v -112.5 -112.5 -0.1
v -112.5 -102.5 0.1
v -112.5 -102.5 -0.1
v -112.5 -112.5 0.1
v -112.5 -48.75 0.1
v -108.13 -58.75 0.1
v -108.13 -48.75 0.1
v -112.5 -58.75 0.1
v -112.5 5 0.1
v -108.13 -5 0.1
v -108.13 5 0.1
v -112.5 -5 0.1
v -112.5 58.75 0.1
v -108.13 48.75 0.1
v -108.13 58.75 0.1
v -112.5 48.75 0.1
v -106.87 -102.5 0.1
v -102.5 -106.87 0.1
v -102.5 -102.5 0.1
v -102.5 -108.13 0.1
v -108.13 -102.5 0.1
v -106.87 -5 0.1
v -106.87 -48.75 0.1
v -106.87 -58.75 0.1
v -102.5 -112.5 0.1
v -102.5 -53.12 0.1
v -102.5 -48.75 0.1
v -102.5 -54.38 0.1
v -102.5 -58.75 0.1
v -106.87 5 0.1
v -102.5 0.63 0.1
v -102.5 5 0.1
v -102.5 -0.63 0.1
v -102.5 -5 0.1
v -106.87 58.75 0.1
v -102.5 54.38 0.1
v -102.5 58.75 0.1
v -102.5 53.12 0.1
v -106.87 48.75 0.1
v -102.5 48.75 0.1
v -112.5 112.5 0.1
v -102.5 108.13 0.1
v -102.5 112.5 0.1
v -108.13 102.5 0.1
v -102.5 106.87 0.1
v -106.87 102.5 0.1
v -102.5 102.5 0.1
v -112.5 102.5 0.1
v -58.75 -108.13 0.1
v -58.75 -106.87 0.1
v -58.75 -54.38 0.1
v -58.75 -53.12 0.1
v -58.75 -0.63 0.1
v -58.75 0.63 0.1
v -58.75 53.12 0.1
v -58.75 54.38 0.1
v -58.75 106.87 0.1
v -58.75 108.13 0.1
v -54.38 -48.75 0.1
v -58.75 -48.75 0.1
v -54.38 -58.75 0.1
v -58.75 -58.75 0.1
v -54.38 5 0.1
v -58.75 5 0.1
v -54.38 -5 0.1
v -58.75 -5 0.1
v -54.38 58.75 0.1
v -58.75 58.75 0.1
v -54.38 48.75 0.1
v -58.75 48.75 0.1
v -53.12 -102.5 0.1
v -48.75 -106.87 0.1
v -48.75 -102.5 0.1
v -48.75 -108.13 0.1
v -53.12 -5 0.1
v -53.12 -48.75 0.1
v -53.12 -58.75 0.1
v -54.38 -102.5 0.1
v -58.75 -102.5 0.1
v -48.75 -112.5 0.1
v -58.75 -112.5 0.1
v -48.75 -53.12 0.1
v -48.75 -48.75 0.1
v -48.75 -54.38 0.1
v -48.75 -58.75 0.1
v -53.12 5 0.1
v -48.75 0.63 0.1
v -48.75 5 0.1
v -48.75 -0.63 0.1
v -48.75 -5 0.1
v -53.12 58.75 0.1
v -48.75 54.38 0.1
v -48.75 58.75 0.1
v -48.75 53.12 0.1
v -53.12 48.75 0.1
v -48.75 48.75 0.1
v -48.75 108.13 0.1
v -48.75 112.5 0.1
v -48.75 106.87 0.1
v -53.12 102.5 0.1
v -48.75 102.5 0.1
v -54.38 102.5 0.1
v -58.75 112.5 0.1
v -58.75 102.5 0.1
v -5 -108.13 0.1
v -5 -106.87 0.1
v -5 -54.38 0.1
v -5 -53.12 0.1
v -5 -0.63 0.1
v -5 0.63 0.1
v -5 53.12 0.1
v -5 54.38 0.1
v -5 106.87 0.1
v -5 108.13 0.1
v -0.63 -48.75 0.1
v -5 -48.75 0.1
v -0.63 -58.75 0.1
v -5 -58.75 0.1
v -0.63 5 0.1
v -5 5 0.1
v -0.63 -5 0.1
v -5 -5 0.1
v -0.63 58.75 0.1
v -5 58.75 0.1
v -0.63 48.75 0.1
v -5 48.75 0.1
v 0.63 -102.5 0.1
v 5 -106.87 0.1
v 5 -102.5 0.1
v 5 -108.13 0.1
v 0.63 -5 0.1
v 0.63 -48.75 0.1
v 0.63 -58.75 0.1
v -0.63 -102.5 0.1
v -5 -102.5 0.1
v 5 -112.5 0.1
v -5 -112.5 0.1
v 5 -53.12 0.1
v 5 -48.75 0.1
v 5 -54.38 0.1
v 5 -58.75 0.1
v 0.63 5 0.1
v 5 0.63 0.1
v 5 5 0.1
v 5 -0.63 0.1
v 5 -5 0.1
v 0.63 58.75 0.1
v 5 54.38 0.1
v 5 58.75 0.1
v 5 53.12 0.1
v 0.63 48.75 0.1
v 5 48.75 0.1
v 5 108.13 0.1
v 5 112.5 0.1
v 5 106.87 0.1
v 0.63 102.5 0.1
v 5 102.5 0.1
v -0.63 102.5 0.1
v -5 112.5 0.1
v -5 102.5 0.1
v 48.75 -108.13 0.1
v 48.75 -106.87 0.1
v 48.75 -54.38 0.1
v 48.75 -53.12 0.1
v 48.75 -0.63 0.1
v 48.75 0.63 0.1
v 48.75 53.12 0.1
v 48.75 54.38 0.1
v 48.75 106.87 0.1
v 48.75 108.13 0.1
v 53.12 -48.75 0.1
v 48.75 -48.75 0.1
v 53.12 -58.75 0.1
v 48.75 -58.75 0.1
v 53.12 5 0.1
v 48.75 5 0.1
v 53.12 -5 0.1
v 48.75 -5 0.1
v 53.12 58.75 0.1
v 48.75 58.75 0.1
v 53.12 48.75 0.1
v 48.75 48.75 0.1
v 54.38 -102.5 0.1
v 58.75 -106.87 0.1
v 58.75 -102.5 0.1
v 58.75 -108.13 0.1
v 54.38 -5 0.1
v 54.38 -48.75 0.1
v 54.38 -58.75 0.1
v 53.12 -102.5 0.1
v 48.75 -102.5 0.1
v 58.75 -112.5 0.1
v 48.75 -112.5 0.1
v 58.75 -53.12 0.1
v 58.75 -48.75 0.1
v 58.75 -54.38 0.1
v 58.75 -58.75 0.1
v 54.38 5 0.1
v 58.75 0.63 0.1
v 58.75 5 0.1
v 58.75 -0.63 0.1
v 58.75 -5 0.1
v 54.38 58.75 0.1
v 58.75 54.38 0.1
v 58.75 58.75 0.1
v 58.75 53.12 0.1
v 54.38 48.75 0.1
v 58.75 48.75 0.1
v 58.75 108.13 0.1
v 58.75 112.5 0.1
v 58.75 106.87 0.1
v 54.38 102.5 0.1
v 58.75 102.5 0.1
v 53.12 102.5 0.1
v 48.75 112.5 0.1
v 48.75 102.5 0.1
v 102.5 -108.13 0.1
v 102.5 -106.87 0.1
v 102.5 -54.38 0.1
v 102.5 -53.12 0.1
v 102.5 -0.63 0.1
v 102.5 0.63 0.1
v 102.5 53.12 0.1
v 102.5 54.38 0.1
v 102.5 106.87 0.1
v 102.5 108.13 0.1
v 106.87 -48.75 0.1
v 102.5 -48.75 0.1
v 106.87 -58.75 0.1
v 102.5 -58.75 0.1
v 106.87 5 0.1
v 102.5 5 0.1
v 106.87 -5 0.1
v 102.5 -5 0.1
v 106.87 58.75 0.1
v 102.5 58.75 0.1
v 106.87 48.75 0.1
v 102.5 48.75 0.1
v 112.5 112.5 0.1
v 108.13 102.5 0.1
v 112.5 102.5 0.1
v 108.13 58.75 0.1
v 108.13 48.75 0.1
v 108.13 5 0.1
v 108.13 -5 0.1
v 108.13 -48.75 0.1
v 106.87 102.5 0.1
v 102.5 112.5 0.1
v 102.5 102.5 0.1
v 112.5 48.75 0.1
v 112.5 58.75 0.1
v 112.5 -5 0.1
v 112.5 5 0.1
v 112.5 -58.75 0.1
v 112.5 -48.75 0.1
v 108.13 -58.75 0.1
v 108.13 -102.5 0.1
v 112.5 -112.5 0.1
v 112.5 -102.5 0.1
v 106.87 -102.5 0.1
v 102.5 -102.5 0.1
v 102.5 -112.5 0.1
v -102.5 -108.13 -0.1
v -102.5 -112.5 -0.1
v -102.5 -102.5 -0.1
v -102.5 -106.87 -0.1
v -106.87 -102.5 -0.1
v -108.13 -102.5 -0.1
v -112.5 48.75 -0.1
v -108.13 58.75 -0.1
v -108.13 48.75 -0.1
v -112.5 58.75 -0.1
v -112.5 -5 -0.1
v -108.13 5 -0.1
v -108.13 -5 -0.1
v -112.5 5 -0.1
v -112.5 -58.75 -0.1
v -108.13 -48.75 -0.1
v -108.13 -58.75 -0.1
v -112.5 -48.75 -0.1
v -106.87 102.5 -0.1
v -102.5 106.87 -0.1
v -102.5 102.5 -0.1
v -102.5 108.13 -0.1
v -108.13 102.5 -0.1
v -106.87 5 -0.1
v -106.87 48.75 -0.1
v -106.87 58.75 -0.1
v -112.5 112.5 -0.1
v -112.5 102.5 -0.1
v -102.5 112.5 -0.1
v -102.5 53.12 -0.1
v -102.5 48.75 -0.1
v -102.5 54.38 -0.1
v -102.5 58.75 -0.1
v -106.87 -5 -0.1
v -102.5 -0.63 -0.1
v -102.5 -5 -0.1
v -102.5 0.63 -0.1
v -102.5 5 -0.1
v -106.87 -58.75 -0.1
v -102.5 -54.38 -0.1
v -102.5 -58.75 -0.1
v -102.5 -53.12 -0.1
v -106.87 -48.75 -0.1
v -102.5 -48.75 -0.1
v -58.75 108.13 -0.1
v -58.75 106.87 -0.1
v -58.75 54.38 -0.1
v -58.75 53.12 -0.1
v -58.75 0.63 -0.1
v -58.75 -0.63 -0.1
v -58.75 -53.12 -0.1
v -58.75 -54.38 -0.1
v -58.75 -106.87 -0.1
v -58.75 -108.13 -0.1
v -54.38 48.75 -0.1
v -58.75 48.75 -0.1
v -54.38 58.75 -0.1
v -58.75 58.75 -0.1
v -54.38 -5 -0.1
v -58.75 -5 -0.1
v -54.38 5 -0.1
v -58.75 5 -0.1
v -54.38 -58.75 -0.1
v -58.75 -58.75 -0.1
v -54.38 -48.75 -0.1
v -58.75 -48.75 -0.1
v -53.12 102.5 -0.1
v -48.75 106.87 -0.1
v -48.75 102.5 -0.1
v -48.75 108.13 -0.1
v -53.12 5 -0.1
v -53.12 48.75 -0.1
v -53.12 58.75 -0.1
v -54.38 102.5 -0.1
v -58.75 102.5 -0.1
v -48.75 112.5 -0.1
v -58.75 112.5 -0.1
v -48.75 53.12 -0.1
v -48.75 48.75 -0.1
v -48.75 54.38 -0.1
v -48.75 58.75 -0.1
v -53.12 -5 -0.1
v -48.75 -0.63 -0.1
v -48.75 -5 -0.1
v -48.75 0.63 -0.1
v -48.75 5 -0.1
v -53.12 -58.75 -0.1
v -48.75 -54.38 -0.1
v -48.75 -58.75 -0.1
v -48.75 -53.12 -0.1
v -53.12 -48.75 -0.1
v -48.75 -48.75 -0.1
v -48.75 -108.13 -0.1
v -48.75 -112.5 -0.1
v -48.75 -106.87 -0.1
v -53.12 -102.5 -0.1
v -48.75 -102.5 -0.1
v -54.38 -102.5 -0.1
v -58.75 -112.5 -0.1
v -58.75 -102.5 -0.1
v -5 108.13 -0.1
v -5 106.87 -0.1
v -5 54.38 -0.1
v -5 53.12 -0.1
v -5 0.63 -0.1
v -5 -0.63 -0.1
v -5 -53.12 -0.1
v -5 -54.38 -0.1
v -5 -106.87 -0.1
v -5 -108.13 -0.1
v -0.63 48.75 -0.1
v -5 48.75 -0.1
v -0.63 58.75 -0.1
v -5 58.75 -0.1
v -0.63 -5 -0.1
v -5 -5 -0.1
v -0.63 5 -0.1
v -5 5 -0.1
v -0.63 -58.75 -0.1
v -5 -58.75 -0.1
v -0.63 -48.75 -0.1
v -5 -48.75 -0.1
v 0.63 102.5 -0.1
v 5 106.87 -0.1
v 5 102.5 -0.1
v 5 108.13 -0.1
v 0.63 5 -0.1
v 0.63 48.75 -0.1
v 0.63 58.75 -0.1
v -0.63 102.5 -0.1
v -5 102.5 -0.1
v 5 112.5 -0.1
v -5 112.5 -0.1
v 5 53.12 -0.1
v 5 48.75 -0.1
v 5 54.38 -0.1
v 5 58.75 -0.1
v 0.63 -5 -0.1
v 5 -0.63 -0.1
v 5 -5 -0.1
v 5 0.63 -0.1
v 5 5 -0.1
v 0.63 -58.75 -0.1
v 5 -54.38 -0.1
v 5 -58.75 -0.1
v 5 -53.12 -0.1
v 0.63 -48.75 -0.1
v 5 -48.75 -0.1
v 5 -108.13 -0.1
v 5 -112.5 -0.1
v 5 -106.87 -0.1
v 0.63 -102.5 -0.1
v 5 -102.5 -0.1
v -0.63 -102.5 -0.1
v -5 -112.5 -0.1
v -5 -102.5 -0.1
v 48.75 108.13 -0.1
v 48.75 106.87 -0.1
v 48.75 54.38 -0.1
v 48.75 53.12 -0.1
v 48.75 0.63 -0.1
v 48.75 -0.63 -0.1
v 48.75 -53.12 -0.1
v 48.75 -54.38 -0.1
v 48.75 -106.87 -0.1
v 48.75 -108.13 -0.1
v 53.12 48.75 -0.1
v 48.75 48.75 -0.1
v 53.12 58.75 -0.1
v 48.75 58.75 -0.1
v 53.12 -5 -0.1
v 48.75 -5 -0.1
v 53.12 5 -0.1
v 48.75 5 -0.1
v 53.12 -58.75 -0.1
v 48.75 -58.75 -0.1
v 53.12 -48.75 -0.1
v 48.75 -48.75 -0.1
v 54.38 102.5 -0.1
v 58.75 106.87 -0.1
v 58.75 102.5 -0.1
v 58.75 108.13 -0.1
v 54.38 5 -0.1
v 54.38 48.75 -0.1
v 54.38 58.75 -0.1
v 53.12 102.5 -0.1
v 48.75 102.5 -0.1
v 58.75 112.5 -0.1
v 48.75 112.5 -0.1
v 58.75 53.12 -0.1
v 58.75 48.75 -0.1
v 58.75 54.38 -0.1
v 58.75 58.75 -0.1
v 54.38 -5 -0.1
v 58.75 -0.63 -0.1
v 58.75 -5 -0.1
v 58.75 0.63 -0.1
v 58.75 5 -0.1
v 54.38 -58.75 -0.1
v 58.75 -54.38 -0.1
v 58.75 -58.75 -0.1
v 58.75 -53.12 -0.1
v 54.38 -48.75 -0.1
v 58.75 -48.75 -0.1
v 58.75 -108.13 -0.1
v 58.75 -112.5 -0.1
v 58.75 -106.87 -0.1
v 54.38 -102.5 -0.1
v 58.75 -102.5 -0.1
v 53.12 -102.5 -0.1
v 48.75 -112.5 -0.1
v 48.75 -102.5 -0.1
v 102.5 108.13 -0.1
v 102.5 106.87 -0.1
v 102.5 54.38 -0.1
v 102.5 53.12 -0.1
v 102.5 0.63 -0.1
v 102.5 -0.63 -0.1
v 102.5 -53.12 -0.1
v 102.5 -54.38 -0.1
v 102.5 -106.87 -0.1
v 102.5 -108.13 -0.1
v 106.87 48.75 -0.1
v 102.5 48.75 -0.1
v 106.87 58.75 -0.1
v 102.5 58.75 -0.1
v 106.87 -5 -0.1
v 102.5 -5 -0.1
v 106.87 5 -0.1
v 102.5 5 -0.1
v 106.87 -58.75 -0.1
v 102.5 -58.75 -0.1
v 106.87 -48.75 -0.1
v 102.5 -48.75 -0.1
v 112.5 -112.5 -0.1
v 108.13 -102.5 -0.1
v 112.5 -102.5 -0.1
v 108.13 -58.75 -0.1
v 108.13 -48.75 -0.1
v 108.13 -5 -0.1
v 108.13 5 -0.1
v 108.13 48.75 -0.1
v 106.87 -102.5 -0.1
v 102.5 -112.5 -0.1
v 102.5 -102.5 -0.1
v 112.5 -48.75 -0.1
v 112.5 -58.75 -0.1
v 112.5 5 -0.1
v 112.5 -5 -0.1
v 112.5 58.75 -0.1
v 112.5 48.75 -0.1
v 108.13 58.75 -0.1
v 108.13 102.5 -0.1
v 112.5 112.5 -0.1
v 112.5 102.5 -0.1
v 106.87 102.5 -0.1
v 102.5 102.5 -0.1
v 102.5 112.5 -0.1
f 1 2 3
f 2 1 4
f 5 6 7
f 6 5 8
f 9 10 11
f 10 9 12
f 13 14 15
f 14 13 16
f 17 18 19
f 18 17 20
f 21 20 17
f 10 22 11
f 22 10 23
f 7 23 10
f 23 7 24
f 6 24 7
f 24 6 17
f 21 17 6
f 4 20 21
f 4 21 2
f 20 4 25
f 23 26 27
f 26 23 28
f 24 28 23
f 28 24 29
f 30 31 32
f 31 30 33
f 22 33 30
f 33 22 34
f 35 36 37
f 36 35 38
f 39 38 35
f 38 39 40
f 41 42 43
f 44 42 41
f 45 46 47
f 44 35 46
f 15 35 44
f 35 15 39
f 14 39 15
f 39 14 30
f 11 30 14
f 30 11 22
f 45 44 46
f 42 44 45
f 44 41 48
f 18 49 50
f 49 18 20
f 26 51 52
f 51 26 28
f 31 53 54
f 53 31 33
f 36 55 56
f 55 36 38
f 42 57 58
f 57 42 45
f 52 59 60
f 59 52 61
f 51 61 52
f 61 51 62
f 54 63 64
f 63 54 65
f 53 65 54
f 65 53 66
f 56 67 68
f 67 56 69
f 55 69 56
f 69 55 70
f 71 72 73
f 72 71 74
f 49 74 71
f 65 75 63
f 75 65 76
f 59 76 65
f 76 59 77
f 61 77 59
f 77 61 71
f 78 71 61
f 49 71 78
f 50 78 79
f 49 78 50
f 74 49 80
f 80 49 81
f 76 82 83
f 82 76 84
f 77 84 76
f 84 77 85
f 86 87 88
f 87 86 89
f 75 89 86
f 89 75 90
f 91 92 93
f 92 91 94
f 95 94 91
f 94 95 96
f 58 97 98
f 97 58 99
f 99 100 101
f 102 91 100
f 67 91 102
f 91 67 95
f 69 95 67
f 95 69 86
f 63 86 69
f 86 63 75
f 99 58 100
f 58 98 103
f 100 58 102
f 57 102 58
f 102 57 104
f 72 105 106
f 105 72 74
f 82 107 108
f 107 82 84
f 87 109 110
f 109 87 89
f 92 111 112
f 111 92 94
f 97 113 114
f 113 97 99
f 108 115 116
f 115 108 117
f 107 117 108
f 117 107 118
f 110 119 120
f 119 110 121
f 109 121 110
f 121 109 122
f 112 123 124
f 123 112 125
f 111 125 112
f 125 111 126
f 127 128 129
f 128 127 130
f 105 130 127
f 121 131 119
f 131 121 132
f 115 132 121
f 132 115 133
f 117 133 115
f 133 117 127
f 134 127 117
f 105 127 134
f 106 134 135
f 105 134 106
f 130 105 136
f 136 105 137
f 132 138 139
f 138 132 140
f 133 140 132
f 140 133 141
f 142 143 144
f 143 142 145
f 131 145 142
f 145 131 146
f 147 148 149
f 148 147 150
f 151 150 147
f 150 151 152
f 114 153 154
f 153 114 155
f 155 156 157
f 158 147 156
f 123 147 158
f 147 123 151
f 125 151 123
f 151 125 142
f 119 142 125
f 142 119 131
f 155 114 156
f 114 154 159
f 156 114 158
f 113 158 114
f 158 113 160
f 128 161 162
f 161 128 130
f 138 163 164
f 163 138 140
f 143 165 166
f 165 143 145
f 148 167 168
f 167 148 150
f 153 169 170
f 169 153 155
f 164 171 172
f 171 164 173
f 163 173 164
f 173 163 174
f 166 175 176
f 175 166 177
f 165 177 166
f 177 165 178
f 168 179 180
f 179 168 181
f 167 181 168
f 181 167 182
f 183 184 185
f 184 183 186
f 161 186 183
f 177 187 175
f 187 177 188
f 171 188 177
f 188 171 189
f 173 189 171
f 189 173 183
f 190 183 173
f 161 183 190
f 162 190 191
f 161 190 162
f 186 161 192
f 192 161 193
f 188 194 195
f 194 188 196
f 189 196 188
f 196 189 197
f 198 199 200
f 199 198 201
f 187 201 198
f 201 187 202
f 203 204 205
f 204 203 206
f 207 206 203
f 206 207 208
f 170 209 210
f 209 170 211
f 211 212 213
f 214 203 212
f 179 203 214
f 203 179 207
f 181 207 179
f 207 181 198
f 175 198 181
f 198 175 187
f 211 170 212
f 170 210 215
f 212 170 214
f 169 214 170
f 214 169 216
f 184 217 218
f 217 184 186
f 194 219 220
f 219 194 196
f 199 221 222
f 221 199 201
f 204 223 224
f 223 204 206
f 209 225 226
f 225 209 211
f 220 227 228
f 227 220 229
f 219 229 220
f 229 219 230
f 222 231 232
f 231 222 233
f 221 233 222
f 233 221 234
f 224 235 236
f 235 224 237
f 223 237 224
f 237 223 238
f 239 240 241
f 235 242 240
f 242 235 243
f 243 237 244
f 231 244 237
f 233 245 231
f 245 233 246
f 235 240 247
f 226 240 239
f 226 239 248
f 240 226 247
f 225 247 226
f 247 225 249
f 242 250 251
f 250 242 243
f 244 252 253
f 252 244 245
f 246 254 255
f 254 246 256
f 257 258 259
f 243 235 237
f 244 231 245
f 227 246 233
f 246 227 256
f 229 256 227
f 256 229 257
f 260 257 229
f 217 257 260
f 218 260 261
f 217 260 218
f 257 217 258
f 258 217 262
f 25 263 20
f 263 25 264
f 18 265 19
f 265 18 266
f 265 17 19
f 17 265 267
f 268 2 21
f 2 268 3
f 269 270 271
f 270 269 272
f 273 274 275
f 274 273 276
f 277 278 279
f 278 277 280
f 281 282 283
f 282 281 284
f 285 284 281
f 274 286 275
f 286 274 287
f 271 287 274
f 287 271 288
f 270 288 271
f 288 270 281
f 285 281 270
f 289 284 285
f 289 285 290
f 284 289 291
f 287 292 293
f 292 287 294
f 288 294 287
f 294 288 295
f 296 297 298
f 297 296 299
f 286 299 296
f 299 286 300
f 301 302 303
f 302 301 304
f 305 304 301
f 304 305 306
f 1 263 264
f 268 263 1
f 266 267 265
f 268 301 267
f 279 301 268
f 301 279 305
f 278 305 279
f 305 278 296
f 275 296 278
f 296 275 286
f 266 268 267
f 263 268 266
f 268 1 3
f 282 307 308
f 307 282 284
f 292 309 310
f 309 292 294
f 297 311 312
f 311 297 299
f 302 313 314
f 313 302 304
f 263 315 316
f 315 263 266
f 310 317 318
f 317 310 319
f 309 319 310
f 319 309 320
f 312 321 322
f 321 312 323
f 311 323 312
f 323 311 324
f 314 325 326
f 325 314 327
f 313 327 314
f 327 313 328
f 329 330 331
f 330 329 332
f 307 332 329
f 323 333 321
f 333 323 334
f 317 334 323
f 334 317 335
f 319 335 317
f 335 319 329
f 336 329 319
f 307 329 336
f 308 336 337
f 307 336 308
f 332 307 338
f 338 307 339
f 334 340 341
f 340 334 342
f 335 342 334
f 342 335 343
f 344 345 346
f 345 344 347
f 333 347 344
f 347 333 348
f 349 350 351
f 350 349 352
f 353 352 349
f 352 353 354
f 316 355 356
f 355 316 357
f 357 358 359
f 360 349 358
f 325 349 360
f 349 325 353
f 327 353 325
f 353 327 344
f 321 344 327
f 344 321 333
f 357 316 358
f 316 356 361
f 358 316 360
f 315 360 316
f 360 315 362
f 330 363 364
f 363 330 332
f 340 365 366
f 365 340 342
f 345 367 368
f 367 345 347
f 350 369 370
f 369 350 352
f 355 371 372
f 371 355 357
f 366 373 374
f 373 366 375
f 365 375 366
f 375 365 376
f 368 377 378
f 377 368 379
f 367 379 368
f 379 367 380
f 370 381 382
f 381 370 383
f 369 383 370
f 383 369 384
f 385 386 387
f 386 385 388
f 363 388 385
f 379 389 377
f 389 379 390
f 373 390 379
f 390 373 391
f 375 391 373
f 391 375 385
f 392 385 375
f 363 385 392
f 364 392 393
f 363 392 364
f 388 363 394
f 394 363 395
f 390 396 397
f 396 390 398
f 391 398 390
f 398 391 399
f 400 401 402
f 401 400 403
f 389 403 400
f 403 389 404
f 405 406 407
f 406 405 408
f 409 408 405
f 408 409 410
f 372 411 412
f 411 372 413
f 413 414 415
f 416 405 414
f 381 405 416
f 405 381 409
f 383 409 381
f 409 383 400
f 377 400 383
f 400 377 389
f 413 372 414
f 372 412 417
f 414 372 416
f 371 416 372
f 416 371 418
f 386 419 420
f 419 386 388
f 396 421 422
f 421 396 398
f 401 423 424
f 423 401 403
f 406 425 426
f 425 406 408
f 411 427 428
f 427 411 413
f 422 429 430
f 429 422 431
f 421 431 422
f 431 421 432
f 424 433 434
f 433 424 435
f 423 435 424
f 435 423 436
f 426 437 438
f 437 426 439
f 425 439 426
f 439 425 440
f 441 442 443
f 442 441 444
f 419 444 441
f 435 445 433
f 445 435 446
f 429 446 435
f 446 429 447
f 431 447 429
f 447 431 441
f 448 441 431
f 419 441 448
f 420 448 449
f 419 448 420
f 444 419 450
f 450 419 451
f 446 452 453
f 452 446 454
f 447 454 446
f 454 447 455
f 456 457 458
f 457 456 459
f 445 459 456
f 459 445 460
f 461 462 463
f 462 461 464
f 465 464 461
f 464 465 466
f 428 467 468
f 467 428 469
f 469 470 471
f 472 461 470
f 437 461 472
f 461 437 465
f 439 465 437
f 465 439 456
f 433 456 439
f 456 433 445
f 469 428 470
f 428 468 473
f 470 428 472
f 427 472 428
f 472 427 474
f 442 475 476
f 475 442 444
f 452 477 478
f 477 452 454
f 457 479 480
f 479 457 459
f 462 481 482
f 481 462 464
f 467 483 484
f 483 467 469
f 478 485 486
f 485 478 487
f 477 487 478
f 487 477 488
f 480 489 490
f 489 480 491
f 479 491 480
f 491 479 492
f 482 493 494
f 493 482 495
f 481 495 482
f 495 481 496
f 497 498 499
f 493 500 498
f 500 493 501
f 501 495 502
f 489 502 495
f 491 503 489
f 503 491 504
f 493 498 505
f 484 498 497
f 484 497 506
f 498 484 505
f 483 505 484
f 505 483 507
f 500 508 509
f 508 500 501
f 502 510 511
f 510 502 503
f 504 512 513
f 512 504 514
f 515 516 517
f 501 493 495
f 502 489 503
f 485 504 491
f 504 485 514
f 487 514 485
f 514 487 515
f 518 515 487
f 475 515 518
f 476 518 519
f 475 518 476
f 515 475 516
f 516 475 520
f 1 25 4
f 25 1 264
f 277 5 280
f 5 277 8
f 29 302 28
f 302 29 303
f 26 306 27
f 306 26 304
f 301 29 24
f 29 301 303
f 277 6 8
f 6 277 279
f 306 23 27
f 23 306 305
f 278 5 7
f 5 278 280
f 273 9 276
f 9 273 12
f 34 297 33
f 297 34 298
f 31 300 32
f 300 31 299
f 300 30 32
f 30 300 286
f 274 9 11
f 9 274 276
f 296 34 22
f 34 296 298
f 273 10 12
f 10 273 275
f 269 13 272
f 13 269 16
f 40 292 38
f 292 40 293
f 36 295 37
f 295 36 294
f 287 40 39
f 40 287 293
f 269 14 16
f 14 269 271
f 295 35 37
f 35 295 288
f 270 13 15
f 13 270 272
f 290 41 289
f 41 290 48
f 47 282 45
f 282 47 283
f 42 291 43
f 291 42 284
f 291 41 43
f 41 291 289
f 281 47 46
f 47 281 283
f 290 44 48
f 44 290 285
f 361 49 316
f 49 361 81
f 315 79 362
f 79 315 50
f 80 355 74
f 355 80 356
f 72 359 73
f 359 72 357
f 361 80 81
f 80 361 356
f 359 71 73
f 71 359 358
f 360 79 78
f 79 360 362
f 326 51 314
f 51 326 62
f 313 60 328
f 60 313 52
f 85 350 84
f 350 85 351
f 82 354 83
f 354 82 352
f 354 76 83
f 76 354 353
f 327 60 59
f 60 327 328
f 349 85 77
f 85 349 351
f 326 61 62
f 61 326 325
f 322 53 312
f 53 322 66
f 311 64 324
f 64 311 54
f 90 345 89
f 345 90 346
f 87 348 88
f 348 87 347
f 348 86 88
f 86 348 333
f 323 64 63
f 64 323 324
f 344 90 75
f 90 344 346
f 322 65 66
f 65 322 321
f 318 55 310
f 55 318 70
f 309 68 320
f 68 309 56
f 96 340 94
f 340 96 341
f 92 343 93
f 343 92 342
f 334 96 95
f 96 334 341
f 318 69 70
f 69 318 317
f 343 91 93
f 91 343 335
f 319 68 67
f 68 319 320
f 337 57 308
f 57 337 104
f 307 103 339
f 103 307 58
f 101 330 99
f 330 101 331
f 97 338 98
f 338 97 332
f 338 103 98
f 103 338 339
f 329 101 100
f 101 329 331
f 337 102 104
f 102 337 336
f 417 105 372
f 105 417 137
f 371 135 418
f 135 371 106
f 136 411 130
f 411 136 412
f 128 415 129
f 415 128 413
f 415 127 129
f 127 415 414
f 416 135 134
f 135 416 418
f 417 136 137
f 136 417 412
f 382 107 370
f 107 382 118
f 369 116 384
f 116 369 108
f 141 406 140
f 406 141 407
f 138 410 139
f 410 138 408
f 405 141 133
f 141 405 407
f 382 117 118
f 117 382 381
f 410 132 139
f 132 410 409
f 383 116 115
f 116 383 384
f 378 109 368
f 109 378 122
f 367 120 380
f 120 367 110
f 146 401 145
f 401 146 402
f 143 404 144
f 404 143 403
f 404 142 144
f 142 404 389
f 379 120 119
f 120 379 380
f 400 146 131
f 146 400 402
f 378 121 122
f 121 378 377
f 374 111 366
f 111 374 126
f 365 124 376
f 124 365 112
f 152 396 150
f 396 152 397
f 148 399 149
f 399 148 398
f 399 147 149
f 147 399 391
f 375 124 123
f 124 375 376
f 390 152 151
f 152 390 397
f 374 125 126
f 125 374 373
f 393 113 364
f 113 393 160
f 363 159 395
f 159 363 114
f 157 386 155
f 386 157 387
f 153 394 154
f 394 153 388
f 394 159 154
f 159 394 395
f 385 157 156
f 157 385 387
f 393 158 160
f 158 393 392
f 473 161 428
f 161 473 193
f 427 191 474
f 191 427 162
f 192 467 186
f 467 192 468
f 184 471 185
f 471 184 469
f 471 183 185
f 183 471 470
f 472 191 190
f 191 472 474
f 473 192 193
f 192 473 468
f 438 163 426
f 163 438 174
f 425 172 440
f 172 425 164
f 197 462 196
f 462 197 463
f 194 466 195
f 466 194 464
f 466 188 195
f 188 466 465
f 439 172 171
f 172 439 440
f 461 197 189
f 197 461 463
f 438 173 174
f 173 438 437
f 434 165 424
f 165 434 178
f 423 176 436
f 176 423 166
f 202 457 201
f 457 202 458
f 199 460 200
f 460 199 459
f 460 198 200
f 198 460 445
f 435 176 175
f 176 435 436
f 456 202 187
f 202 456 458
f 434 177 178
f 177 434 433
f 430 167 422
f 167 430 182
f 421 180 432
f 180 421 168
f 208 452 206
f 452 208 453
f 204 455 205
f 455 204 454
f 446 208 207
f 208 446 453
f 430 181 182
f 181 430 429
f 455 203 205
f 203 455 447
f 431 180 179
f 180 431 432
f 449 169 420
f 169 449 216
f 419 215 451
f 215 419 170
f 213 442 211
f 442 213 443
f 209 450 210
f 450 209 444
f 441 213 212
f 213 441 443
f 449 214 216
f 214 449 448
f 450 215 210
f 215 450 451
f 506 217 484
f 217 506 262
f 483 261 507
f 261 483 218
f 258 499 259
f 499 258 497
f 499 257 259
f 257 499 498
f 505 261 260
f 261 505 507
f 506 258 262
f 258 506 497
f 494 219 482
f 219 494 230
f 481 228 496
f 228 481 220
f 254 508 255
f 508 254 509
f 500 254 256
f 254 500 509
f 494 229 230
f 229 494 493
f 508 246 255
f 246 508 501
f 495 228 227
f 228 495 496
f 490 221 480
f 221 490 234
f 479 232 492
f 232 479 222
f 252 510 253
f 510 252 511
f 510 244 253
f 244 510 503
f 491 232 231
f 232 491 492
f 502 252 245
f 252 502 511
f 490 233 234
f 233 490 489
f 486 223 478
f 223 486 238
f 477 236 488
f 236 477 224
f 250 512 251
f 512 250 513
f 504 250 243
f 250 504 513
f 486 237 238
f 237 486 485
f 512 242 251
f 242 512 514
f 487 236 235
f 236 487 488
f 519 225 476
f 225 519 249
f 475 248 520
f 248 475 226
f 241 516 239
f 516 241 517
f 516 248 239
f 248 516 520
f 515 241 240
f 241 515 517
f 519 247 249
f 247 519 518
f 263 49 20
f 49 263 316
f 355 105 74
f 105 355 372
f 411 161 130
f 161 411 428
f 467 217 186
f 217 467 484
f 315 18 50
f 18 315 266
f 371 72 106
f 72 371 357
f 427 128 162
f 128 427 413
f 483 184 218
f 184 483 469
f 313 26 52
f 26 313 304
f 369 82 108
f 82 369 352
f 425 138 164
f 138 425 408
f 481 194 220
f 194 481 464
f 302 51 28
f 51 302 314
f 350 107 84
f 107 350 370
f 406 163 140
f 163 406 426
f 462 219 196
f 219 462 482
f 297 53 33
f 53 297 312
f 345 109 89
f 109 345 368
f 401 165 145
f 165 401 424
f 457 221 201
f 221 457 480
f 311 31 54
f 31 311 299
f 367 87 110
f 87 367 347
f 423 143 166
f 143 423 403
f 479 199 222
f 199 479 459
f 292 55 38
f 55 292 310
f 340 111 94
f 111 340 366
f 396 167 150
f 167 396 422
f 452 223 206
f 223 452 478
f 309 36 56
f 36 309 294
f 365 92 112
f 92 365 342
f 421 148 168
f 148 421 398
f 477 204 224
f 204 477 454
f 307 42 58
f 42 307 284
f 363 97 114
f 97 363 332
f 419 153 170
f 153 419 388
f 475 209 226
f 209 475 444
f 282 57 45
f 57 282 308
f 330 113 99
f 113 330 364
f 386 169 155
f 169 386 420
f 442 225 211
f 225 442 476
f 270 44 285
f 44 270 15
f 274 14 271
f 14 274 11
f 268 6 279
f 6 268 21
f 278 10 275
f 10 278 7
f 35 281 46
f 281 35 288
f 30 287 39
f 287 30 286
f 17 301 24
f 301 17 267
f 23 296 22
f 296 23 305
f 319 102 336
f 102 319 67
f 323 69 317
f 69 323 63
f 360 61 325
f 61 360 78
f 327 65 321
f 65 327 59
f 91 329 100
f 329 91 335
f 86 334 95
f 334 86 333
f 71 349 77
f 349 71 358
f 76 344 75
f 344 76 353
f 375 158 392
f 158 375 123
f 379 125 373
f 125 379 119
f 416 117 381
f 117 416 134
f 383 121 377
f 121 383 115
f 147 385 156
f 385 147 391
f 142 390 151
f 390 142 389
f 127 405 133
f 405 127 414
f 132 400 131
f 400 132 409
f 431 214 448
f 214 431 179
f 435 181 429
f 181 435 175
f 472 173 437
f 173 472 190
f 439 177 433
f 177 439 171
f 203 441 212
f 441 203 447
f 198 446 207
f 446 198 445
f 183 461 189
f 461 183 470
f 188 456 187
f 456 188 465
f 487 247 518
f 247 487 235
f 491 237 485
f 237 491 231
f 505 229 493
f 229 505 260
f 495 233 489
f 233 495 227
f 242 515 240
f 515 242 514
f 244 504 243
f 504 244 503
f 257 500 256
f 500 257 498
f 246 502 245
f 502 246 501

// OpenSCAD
include <3d-printer-testing-suite.scad>

/* [Hidden] */
test_type = "bed_level";
